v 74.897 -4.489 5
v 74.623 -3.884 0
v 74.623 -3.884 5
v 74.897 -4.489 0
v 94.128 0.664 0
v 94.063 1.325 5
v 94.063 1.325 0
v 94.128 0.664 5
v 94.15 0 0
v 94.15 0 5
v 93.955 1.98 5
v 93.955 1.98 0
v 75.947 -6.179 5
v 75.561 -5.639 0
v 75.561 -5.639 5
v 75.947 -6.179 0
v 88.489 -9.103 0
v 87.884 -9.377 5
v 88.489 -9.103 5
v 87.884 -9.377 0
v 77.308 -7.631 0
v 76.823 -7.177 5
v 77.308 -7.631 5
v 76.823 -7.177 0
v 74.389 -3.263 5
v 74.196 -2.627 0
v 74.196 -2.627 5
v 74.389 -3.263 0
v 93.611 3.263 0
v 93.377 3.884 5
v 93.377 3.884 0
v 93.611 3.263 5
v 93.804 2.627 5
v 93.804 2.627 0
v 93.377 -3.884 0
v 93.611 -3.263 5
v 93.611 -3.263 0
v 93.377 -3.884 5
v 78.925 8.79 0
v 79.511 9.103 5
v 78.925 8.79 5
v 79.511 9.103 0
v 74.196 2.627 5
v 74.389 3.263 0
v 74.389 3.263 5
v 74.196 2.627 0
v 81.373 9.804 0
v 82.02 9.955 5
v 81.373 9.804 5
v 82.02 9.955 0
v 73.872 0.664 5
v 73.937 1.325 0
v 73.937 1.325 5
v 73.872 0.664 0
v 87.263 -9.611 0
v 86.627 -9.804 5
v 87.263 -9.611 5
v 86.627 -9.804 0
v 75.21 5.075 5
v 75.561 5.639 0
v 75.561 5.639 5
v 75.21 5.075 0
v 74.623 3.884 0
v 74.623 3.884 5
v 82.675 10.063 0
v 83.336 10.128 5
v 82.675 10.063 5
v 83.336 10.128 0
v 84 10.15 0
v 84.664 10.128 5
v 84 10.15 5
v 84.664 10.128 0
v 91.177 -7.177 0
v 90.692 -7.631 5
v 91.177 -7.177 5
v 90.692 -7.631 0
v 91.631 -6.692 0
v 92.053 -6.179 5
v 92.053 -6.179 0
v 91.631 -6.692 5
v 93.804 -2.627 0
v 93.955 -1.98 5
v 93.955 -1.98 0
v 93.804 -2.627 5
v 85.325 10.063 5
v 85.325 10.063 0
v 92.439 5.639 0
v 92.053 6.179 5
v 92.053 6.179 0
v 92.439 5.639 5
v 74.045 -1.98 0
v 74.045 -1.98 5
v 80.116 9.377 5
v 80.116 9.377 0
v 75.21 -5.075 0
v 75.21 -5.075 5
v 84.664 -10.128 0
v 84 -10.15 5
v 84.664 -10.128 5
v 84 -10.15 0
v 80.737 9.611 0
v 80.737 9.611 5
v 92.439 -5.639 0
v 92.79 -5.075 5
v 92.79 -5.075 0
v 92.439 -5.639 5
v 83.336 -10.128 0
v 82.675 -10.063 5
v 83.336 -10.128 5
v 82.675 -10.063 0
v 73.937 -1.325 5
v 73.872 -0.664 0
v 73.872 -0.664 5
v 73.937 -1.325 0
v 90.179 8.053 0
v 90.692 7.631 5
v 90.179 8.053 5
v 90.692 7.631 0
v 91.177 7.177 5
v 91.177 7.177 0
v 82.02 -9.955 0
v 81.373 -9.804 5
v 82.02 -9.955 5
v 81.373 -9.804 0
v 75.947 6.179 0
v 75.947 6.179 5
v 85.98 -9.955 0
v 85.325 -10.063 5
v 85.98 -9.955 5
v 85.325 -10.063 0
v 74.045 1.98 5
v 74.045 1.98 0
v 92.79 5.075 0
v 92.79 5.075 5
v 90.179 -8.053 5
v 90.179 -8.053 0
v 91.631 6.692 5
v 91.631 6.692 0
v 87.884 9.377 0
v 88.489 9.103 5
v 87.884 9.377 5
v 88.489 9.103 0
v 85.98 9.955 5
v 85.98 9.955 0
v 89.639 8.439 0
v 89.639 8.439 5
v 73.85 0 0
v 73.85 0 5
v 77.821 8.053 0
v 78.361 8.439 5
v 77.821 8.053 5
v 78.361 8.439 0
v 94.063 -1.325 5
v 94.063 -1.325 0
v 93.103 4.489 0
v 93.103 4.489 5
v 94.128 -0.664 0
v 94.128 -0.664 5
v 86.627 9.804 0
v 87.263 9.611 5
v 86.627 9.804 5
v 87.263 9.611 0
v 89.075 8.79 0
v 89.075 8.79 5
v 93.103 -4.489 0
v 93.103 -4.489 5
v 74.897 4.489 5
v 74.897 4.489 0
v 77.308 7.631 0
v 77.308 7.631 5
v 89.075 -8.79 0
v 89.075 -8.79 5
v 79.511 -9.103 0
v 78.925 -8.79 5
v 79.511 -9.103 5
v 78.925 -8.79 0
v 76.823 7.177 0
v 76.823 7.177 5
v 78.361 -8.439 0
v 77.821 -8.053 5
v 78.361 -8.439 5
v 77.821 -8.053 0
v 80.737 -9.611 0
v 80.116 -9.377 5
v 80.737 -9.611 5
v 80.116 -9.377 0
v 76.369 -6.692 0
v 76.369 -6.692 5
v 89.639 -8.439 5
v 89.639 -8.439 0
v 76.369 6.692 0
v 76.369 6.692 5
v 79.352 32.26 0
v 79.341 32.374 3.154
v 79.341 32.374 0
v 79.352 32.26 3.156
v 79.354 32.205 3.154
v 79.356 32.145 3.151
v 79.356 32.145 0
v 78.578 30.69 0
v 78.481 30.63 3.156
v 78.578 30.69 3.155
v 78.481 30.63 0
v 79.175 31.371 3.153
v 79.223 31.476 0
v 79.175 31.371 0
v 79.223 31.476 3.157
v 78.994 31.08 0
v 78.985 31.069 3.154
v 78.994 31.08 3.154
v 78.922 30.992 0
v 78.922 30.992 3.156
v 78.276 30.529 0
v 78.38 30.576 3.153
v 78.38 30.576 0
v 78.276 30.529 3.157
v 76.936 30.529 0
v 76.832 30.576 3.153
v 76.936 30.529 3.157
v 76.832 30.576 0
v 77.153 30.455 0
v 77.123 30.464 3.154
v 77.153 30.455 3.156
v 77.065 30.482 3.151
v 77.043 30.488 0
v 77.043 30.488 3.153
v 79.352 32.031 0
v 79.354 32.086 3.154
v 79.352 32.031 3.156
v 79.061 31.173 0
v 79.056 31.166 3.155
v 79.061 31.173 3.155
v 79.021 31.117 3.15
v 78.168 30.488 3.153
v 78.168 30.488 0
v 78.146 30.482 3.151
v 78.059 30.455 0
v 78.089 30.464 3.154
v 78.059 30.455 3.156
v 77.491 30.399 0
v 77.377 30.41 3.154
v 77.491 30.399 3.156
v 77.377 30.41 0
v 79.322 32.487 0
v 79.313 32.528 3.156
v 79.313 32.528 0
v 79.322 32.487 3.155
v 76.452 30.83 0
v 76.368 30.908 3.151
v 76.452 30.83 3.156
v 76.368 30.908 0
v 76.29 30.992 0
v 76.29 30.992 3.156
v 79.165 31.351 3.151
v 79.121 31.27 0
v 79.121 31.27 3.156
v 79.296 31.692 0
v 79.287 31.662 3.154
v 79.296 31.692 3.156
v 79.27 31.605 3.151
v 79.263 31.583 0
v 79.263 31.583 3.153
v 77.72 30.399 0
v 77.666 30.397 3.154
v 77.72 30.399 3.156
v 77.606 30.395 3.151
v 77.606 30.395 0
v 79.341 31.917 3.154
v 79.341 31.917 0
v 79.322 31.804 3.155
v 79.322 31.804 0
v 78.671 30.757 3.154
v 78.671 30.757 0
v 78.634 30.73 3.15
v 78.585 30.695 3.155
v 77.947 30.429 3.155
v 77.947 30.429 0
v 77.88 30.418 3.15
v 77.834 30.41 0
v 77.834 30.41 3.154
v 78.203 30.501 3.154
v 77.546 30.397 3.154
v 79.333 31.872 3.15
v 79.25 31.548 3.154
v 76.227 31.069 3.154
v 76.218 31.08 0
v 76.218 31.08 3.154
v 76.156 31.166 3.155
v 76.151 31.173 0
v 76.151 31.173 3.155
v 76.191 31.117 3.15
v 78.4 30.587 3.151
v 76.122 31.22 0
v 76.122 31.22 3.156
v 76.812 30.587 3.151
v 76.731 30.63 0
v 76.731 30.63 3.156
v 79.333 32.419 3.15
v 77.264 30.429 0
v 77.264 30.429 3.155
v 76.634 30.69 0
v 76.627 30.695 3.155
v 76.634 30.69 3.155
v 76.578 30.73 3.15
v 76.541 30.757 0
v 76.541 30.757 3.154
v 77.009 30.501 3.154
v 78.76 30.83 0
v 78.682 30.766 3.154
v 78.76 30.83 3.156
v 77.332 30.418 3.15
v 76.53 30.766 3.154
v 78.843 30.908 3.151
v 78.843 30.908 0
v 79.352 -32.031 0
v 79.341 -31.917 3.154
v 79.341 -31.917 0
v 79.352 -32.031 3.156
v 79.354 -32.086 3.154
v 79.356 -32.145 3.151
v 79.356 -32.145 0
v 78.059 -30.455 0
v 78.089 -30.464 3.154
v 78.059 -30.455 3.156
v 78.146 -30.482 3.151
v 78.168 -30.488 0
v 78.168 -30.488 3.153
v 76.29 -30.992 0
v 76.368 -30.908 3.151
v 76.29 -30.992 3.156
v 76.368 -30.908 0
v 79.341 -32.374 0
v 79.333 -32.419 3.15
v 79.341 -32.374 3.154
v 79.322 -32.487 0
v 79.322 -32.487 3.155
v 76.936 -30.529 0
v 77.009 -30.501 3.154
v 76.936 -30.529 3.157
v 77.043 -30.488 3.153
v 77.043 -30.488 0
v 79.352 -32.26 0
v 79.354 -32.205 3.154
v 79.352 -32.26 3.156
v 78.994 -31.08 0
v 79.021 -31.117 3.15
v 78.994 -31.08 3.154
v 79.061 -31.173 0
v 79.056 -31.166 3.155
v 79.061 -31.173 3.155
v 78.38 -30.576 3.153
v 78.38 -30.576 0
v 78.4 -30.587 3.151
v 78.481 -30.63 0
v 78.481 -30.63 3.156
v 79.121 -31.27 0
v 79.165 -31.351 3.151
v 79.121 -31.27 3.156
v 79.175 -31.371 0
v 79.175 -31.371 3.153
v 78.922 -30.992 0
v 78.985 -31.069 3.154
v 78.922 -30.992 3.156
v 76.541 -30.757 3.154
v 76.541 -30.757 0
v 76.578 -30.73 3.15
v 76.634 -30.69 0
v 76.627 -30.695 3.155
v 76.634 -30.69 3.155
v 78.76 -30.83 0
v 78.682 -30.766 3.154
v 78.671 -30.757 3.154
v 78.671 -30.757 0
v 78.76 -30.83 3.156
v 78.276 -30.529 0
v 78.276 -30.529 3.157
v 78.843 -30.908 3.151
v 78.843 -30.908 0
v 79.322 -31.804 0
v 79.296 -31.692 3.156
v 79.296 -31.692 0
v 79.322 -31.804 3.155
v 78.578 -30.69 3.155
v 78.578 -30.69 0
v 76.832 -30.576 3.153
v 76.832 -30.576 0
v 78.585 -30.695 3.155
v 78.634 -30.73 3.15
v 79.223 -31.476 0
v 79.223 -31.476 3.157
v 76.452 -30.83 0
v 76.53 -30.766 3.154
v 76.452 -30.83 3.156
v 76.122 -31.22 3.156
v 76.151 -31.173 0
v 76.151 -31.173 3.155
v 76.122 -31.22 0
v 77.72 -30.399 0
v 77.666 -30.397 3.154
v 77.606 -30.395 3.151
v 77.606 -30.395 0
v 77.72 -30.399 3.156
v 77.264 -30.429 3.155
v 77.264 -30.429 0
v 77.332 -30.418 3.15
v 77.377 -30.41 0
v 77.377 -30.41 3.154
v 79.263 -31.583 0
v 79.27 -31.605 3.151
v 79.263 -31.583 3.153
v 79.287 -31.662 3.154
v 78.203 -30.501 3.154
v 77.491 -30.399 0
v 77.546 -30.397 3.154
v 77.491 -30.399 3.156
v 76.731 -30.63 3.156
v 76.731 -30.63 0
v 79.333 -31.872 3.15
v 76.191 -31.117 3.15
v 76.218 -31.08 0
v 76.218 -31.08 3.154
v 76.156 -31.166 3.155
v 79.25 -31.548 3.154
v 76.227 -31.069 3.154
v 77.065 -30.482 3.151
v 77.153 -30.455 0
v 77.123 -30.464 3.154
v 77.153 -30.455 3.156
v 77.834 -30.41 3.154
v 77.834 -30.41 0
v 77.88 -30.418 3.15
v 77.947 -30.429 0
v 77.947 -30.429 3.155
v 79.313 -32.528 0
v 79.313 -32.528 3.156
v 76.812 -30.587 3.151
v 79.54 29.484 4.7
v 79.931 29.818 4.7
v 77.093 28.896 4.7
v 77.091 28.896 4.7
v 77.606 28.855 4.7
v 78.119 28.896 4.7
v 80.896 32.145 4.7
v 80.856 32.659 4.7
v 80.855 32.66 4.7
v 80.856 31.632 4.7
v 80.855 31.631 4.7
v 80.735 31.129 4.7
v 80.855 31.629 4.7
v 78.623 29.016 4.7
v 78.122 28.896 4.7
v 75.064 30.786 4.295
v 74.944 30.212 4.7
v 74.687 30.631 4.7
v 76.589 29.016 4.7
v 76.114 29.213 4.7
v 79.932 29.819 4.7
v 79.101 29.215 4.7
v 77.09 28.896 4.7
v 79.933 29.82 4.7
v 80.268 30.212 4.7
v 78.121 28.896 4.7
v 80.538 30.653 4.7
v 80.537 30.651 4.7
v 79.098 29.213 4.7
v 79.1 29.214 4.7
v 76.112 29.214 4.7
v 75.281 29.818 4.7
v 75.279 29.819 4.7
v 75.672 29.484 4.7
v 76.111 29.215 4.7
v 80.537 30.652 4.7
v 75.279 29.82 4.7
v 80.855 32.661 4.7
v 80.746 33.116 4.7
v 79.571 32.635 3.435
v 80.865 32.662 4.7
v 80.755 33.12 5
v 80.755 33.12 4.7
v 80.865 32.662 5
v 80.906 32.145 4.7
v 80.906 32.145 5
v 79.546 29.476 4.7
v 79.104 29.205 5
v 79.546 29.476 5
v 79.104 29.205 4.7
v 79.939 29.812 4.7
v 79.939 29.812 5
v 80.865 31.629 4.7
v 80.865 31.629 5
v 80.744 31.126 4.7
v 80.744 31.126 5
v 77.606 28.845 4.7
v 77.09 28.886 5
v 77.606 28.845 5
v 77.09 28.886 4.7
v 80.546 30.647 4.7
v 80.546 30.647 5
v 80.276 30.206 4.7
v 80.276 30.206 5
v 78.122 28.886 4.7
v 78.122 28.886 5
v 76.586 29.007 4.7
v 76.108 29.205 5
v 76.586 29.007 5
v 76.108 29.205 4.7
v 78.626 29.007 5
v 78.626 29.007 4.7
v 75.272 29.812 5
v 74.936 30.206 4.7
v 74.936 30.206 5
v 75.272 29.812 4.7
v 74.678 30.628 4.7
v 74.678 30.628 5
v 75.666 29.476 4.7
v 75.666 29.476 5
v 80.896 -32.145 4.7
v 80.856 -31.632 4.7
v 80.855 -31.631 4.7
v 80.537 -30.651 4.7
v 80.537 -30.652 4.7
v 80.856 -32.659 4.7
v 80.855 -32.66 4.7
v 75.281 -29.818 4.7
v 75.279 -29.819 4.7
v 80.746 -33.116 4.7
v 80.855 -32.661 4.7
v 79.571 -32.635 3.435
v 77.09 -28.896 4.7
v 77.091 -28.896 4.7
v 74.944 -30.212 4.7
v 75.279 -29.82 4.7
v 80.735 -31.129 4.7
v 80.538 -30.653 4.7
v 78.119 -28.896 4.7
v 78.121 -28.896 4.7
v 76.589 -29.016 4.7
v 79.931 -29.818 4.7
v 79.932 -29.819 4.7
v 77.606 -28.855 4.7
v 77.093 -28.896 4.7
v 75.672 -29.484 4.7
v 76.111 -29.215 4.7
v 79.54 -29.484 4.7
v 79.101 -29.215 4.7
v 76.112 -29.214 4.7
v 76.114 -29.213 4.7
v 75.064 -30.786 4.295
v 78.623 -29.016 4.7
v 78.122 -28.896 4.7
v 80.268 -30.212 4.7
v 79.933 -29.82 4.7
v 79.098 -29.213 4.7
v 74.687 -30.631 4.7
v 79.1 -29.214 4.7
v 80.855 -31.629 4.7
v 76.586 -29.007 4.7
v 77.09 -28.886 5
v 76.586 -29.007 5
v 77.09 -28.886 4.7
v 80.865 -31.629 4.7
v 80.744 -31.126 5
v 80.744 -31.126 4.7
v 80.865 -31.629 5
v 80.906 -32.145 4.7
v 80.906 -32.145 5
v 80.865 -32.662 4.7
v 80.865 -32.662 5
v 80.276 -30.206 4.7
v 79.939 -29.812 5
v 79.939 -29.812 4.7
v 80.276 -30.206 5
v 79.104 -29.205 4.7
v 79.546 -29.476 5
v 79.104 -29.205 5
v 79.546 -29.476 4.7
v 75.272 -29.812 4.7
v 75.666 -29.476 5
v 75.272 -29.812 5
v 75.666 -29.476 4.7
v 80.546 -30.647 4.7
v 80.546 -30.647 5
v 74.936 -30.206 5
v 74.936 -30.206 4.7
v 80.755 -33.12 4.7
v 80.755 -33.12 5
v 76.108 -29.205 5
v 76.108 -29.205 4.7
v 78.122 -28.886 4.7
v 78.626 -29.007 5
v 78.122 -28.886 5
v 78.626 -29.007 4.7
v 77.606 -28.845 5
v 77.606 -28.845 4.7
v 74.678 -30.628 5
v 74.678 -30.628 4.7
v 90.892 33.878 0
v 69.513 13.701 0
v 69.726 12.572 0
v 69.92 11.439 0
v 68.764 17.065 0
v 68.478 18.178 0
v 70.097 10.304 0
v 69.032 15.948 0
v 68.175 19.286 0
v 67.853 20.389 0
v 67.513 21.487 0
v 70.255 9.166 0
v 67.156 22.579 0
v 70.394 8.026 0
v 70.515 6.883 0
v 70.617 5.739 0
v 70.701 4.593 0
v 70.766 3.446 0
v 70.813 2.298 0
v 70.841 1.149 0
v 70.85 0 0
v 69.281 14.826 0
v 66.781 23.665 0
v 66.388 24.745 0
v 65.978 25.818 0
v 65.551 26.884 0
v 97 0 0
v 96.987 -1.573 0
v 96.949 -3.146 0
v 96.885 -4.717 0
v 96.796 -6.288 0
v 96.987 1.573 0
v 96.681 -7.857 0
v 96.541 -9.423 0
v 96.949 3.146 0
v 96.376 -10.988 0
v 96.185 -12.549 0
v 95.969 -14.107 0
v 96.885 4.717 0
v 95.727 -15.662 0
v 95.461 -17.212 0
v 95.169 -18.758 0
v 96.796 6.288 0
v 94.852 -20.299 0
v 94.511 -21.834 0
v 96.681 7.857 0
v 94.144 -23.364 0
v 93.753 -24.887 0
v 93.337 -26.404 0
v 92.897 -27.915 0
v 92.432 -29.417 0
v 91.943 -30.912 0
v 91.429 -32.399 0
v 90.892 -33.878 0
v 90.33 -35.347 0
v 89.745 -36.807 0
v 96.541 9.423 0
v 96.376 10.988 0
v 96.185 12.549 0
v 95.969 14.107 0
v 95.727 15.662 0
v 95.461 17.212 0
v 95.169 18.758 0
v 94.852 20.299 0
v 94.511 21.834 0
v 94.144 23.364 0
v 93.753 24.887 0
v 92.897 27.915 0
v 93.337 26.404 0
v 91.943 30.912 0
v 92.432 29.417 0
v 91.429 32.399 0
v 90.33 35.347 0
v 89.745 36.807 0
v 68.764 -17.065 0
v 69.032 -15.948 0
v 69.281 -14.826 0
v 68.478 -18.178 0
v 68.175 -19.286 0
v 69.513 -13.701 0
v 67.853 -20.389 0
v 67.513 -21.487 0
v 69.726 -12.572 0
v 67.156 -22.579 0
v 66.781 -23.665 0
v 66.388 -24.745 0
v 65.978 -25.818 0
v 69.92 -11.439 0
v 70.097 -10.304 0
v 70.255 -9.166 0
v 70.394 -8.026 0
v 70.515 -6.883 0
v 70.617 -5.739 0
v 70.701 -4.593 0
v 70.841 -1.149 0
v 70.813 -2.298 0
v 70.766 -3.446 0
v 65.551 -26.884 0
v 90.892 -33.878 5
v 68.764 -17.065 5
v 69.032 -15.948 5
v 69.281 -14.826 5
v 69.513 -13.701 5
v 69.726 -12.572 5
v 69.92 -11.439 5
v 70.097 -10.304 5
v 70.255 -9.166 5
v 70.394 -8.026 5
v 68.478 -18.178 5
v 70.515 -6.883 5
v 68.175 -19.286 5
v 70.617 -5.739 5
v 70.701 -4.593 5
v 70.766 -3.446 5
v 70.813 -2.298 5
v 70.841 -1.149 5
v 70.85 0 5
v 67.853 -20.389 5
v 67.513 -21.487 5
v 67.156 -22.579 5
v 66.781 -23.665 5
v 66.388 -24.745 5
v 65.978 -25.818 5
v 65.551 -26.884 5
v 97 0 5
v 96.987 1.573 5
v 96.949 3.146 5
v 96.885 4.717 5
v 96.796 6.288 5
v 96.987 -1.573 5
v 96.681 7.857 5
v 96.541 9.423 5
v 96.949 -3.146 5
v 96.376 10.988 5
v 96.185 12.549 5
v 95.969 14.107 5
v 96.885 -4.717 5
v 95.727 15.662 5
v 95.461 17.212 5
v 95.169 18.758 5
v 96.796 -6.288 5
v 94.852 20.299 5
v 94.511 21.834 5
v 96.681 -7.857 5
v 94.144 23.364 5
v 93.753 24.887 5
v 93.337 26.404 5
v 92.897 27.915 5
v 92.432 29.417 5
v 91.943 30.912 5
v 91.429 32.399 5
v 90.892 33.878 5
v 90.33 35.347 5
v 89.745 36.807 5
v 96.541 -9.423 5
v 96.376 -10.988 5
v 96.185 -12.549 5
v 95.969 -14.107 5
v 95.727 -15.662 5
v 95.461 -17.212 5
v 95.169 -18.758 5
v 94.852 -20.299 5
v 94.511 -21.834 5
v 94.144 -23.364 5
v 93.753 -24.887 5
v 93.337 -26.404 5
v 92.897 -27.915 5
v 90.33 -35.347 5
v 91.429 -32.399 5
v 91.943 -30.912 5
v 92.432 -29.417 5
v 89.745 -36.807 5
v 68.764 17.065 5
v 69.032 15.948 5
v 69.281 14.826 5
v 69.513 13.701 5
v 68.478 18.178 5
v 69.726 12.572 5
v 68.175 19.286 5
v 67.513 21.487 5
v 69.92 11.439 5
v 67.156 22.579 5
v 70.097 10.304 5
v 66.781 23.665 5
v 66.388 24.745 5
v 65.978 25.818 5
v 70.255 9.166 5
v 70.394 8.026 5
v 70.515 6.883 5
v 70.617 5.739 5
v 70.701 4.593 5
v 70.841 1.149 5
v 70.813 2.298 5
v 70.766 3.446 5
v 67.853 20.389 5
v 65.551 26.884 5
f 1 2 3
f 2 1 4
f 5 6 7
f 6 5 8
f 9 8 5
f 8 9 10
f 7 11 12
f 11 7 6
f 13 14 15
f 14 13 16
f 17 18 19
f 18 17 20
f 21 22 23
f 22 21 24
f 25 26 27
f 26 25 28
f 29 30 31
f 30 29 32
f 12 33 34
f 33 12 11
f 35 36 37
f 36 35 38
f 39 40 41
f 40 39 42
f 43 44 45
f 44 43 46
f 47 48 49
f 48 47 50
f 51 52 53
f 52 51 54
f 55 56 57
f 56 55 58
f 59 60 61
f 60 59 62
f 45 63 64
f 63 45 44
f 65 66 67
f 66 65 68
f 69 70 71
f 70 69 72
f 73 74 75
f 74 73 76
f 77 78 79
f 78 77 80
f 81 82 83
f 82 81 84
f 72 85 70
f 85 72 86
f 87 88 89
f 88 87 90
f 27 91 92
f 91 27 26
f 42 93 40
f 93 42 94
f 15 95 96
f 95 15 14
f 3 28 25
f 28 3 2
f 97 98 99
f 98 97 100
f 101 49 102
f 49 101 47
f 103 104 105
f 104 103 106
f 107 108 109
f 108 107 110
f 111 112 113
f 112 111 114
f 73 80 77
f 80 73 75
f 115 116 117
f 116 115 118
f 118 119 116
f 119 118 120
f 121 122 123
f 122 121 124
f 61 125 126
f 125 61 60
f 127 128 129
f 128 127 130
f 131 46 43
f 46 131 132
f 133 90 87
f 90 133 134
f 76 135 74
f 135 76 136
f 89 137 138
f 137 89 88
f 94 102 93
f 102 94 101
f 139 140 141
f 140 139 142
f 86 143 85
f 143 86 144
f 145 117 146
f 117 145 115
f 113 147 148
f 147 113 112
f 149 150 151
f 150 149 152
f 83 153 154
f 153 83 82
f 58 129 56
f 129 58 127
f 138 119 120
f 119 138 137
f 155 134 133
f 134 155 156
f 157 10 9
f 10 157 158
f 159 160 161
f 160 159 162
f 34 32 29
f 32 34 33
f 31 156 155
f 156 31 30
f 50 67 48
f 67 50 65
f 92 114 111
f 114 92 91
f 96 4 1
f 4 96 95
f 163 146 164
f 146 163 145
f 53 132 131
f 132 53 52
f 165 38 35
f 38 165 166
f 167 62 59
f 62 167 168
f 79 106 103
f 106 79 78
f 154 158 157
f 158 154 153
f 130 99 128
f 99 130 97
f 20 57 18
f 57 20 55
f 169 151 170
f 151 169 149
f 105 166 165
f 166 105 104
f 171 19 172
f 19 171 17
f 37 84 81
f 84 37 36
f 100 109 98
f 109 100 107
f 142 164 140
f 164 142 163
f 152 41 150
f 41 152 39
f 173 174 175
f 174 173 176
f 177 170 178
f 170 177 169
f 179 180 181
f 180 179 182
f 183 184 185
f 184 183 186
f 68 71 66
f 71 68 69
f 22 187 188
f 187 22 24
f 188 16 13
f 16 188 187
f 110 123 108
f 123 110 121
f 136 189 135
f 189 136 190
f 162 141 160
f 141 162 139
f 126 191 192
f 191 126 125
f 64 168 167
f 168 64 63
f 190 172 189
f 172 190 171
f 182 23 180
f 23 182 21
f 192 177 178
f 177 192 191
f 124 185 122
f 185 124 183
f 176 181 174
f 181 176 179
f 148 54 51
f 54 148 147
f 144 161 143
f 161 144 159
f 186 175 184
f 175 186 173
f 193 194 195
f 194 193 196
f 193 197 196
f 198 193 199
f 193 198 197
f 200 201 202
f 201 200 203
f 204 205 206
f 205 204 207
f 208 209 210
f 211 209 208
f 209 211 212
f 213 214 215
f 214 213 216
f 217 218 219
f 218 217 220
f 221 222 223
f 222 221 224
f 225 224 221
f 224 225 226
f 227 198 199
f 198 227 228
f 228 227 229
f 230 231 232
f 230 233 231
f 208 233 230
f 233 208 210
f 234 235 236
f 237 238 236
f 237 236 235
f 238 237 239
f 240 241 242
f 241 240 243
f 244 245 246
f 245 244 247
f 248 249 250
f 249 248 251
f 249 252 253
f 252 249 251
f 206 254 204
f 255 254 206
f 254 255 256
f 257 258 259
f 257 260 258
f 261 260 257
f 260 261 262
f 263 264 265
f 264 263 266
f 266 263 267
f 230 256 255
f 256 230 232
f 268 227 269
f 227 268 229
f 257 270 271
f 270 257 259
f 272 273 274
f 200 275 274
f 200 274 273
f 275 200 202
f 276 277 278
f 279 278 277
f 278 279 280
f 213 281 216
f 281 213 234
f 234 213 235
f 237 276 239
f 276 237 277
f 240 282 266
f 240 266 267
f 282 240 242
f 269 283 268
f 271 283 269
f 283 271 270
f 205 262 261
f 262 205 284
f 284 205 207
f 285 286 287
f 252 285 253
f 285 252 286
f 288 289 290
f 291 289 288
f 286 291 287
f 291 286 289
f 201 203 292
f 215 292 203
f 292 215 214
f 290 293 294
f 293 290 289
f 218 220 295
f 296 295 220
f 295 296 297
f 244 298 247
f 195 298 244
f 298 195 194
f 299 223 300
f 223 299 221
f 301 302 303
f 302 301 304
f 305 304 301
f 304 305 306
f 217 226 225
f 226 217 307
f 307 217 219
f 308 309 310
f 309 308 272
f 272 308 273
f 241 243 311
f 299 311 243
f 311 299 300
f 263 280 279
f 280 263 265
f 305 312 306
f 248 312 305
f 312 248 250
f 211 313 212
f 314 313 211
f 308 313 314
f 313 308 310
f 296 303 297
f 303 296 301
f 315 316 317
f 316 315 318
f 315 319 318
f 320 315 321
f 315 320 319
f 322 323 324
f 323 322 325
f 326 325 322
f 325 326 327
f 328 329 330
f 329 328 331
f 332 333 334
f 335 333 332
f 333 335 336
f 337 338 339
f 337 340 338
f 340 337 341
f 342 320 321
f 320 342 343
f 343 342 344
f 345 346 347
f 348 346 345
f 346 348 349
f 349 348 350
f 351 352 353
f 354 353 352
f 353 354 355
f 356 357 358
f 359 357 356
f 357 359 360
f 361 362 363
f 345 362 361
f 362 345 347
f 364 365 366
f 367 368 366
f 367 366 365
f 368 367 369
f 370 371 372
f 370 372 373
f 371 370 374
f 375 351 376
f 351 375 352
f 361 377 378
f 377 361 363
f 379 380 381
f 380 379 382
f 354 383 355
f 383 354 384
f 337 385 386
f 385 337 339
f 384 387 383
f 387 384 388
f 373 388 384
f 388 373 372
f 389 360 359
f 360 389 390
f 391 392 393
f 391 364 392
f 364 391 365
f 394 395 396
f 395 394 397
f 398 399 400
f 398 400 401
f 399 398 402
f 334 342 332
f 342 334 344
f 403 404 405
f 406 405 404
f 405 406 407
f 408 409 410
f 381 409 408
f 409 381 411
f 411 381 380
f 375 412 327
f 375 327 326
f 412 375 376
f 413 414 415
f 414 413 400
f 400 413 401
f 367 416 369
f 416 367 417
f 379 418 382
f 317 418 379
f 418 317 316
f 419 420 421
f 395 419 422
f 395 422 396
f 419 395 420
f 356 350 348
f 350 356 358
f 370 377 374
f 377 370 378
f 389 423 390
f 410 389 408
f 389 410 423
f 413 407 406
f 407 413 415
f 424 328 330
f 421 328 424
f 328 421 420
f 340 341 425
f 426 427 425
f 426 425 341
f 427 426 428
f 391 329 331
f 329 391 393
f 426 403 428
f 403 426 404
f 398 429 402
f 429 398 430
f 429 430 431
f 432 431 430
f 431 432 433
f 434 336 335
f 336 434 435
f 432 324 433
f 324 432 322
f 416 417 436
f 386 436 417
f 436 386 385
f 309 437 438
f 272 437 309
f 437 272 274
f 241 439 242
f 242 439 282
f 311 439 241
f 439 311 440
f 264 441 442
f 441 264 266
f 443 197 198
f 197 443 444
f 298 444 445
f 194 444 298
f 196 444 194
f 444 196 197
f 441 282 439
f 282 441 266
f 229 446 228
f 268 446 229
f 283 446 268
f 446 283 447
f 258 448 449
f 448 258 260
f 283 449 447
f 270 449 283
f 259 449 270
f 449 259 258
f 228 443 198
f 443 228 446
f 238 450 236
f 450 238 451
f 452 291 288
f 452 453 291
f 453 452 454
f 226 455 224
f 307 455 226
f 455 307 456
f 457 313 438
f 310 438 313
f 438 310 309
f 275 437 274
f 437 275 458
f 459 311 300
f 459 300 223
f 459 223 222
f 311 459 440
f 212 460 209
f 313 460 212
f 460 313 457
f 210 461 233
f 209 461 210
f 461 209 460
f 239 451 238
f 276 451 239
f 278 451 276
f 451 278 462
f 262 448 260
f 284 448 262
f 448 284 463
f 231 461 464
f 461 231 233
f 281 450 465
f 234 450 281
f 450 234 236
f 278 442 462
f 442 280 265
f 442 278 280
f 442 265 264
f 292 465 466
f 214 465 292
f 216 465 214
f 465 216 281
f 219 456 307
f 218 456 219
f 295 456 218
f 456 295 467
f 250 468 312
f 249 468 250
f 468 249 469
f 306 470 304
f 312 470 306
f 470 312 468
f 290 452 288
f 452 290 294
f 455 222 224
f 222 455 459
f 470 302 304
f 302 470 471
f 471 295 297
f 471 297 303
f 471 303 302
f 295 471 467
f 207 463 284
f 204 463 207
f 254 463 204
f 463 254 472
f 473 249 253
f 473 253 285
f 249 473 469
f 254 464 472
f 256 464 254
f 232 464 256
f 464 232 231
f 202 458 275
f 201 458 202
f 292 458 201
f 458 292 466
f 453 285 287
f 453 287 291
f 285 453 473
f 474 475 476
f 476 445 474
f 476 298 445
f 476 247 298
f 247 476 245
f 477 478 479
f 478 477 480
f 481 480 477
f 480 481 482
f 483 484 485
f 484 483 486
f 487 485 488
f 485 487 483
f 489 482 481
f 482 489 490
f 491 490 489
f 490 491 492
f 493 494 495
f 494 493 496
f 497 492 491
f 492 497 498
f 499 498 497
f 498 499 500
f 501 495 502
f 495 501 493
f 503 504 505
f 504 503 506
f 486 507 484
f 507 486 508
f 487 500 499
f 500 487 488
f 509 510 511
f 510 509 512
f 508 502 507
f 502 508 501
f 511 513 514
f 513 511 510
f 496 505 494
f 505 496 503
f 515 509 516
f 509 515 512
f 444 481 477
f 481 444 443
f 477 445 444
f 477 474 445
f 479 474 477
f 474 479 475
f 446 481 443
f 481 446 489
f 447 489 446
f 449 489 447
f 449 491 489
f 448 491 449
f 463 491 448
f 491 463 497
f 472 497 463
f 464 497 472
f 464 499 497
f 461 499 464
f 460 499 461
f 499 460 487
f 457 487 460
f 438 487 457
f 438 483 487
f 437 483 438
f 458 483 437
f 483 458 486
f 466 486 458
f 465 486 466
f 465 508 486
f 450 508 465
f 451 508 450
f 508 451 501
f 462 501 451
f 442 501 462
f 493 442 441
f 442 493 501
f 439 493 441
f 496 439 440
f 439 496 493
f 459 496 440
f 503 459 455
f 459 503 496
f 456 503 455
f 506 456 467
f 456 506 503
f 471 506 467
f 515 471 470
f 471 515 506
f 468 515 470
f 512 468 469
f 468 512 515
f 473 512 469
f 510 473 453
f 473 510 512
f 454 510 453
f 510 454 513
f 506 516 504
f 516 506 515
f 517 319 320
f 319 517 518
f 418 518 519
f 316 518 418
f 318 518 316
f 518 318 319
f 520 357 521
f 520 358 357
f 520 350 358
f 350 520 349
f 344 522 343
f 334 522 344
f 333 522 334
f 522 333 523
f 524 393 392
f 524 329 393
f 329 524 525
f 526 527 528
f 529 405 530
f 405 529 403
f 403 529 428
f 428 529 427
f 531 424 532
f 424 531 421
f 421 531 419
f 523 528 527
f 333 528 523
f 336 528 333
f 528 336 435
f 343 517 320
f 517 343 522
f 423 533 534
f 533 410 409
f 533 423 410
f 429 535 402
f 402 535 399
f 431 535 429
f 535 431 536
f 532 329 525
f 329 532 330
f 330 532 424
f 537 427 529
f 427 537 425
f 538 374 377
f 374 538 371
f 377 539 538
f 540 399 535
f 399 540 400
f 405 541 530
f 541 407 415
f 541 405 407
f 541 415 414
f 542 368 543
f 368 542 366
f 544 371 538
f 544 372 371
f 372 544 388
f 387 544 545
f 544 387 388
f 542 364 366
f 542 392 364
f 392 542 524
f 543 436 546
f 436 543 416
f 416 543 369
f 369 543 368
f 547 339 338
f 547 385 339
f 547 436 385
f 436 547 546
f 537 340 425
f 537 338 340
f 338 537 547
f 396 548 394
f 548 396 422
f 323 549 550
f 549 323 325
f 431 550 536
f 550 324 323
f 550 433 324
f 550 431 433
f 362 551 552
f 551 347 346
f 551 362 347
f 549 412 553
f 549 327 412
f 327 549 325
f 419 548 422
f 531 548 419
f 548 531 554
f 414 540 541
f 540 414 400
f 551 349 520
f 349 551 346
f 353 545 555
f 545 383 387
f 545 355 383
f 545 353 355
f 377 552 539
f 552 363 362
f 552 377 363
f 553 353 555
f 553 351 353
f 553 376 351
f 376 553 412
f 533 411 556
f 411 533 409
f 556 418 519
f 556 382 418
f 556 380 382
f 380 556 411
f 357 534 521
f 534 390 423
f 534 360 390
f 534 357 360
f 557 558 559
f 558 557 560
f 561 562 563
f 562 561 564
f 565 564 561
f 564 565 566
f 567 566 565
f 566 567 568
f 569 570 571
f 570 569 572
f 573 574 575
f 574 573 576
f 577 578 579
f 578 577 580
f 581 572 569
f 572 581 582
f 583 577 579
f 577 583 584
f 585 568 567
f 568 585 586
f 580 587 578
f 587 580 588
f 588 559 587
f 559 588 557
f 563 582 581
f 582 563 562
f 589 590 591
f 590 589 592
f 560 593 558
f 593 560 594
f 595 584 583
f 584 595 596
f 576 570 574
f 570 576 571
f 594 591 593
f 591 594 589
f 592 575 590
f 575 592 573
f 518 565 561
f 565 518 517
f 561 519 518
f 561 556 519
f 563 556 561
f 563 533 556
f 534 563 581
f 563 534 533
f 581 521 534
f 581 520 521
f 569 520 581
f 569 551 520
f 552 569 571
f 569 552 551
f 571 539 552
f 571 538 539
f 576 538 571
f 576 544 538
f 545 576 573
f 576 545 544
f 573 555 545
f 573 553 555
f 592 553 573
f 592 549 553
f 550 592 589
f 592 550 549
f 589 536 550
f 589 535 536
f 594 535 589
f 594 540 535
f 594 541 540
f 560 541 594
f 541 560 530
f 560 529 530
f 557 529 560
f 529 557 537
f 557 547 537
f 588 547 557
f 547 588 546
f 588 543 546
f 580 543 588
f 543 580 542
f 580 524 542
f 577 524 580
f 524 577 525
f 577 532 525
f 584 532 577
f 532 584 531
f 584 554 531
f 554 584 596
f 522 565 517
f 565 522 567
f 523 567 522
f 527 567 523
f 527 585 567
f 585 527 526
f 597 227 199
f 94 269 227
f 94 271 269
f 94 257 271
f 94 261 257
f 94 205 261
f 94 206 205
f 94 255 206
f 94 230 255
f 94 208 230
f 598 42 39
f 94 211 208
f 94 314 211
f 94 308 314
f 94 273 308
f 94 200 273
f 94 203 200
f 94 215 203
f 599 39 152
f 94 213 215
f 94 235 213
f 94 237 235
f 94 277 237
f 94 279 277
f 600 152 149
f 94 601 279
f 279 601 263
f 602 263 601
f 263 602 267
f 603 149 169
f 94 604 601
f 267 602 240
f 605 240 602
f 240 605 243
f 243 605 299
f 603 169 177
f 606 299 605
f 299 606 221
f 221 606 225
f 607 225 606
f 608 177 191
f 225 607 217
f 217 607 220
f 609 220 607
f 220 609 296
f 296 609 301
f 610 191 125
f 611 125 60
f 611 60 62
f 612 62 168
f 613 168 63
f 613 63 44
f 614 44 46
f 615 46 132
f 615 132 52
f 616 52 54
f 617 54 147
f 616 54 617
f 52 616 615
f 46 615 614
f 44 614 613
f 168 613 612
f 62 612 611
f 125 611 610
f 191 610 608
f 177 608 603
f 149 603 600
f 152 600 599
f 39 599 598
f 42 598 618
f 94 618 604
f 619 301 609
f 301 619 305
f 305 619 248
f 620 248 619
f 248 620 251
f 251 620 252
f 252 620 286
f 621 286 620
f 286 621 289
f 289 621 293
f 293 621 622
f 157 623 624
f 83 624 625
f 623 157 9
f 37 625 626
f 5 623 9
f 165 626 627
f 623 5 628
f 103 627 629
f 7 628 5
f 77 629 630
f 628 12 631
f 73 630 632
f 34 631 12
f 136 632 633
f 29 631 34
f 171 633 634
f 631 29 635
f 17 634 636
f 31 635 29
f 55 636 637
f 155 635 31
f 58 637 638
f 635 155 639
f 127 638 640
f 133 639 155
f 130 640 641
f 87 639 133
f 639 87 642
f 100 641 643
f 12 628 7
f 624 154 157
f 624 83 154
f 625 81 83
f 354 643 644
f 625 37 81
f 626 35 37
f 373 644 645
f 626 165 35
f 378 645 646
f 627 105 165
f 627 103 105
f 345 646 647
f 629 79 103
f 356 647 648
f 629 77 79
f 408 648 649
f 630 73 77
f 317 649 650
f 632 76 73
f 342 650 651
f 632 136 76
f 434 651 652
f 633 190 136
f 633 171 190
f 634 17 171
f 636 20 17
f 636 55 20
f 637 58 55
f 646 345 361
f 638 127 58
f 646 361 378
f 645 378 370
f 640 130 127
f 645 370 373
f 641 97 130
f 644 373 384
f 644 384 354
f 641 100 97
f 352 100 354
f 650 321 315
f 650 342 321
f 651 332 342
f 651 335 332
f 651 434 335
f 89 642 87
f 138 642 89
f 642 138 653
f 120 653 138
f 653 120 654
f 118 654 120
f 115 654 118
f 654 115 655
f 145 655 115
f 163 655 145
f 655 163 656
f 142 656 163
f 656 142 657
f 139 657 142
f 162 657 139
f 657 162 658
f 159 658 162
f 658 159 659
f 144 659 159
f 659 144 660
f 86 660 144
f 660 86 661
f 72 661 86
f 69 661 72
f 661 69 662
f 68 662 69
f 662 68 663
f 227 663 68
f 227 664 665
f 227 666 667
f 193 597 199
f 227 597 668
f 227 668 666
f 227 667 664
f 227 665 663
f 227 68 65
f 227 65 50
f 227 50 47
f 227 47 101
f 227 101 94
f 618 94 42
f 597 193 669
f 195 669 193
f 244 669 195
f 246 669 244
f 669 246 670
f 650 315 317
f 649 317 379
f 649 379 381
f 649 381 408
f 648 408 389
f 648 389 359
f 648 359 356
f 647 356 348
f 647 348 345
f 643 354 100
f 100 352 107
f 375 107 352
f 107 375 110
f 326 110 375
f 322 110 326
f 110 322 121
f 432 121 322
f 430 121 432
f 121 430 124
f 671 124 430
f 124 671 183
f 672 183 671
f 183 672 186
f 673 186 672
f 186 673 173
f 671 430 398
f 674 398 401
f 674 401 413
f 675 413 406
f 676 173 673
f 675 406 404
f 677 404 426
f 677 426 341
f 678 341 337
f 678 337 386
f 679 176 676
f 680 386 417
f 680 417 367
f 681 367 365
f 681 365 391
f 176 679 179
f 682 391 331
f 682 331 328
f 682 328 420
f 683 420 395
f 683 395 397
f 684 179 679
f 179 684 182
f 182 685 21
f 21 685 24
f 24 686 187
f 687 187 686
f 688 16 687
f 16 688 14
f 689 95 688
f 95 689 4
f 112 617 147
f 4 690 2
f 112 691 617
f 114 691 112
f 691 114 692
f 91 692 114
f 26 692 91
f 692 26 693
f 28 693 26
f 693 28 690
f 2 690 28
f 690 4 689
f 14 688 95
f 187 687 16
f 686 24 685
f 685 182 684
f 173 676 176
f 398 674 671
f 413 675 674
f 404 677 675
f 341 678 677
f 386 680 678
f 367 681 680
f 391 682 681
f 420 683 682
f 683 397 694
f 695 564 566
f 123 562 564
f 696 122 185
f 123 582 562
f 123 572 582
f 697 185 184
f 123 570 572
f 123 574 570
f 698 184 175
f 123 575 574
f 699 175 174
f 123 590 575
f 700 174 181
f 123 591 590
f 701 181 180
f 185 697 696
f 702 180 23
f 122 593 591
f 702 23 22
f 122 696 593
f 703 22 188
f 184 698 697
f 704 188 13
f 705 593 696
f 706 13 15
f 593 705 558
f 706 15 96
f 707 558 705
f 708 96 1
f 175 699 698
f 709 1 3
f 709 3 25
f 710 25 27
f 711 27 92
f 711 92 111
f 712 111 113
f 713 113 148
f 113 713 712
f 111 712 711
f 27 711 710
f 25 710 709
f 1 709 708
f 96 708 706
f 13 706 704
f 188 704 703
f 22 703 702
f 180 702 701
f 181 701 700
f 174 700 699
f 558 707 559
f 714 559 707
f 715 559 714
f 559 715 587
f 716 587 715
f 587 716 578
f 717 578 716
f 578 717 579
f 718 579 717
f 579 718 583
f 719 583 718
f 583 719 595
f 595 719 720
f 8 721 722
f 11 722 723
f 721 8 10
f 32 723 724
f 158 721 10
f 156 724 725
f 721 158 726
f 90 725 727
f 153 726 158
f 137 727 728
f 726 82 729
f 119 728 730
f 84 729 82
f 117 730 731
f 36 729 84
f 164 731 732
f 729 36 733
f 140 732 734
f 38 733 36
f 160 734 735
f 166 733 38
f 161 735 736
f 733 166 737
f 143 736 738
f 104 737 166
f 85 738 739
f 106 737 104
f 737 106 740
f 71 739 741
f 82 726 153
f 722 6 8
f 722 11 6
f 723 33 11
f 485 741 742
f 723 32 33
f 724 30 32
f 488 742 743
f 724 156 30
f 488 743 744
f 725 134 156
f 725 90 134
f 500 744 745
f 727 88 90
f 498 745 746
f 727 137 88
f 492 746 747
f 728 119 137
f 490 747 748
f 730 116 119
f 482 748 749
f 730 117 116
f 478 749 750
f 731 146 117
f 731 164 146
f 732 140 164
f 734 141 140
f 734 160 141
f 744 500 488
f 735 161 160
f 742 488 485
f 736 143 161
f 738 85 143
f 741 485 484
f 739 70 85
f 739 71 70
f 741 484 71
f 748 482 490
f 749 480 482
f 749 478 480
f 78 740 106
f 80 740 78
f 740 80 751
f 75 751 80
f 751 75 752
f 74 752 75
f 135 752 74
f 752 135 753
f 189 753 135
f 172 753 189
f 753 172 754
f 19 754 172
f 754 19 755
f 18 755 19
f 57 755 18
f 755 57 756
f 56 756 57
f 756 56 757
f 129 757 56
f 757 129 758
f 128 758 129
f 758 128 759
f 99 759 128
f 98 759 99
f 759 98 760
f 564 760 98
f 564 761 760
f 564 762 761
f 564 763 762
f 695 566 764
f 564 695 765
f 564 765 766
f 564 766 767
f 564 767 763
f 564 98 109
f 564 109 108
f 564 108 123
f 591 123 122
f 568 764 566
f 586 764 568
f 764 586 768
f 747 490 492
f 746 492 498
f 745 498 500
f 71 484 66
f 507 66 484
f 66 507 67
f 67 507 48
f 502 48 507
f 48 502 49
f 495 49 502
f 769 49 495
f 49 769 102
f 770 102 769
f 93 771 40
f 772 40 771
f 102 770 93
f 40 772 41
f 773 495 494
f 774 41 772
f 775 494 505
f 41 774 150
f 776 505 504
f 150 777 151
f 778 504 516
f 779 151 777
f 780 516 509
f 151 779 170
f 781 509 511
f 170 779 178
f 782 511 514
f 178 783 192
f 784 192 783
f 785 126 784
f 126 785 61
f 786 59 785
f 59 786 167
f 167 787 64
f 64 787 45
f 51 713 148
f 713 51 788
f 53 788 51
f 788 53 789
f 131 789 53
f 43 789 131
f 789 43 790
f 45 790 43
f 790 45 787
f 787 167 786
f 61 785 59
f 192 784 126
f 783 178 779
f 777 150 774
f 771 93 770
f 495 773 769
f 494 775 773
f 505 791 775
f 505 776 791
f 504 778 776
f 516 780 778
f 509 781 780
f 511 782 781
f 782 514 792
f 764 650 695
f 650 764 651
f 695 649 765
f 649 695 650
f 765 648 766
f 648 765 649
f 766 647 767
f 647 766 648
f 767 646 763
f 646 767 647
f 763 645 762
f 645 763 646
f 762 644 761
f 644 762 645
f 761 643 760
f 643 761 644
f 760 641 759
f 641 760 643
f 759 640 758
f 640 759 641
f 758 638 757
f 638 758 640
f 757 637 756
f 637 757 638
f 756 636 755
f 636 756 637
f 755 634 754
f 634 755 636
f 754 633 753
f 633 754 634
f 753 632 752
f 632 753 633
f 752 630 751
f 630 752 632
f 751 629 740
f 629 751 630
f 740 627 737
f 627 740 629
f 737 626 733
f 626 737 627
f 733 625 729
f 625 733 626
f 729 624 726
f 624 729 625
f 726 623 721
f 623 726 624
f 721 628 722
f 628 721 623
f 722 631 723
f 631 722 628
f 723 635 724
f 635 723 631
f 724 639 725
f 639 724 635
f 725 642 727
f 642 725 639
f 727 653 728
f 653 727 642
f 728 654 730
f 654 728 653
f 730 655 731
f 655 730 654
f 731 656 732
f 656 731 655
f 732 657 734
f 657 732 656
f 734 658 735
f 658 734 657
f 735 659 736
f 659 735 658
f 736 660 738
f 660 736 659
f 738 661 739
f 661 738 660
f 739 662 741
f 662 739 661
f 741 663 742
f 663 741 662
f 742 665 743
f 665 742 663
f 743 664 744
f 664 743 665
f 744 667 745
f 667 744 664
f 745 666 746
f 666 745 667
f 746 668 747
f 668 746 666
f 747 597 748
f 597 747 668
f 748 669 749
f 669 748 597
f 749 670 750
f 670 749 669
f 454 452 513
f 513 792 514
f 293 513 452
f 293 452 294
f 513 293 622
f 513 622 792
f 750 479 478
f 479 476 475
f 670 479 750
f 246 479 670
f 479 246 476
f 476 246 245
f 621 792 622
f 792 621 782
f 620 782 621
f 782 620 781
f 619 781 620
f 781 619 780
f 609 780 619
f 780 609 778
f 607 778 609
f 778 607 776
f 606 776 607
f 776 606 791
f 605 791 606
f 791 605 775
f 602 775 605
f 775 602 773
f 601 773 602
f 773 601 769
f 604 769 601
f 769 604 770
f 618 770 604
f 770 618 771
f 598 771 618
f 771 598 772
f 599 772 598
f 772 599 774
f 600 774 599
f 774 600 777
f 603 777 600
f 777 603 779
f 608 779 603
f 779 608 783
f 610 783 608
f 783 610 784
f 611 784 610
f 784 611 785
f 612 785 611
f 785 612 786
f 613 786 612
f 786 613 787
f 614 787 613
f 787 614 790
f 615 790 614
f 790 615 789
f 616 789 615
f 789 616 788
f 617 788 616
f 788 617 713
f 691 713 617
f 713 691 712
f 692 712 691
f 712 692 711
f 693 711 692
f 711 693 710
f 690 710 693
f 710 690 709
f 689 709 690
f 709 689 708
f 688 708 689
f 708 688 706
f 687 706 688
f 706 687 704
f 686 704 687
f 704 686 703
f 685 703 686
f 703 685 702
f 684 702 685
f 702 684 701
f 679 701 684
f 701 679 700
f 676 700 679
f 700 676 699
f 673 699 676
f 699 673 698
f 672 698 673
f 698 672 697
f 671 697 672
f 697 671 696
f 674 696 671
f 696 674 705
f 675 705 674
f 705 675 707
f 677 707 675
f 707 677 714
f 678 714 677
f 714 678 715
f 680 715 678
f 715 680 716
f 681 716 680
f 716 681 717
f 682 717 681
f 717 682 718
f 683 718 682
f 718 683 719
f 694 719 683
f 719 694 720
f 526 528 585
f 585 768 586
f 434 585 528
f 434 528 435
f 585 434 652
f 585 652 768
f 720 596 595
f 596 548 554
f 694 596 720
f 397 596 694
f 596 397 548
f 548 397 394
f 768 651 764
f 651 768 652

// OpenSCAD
// file: parameters.scad
// =============================================================================
// Gen-CB — nightly 2026-10-13 (physics_scorer, honest magpylib watts)
// Wire-saver stator for the Gen-CA rotors: only 4.05 mm of copper (9 layers), so the magnet faces are 6.65 mm apart and peak Bz at the copper reaches ≈0.70 T. It needs ≈300 m of wire (≈80 m less than Gen-CA, ≈75 m less than Gen-BX) and still out-scores the Gen-BX champion; it shares every rotor part, the steel, the frame rods and the bearing bridges with Gen-CA, so the two stators swap on the same machine.
// Clocking 0 deg (magnets N facing S) + D-flat keyed bore + index notch + flip-symmetric hole map.
// Windable 2-piece bobbin; turns = physics_scorer turns_fit; copper only between flanges.
// Steel back-iron: 2× Ø194 × 4.76 mm (3/16") mild-steel discs (steel_backiron_disc.dxf); magnets sit ON the steel
// (through-pockets) -> score with --back-iron. Night 2026-10-13.
// =============================================================================
topology            = "dual_rotor";

// --- Wire / winding (physics_scorer winding-fit) -------------------------------
wire_awg            = 26;
wire_od             = 0.45;     // insulated OD mm (bare 0.405)
fill_realistic      = 0.65;     // insulated-wire area / window (DENSE layered wind with a jig; scorer cap 0.65)
turns               = 292;       // = physics_scorer turns_fit (do NOT raise)
coil_former_type    = "bobbin";
coil_core_inset     = 17.70;     // radial copper build: hub = copper boundary inset by this
wind_build_axial    = 0.0;      // nothing proud of the flanges
wind_build_radial   = 0.0;

// --- Bobbin (base + lid) ---------------------------------------------------------
coil_id_r           = 63.00;    // copper boundary sector
coil_od_r           = 102.00;
span_deg            = 26.82;    // = pitch - 2*asin((wall+0.85)/coil_id_r) -> >=1.2 mm stator web
former_web          = 4.05;     // copper height between flanges (TALL copper: steel keeps Bz up)
flange_t            = 0.80;     // >= 0.8 mm FDM wall rule (tall winds push on the flanges)
wall                = 0.80;     // flange lip beyond copper
former_bare_h       = former_web + 2 * flange_t;
coil_envelope_h     = former_bare_h + 2 * wind_build_axial;
tab_w               = 7.0;
tab_len             = 7.0;
tab_h               = former_bare_h / 2;
pin_d               = 1.9;      // 1.75 mm filament locating pin
coil_mount_r        = coil_od_r + 0.2 + 4.0;
lead_y              = 1.6;
lead_slot_w         = 0.9;
lead_groove_d       = 0.6;

// --- Gap -------------------------------------------------------------------------
run_clear           = 0.50;     // rotor face -> flange
gap_spacer_h        = run_clear + wind_build_axial;
m2m                 = coil_envelope_h + 2 * run_clear;   // rotor face to rotor face (= gap_sleeve length)

// --- Stator ----------------------------------------------------------------------
coil_stations       = 12;
bay_clear           = 0.35;     // 0.35 mm: bobbin BASES print IN PLACE inside the stator bays (print-in-place gap), then pop out
stator_thick        = former_bare_h;                        // bobbins flush both faces
stator_od           = 225.0;
shaft_clear_stator  = 14.0;     // stator is static; gap sleeve OD 12 spins inside
stator_ir           = 57.85;    // ANNULAR stator: open centre (nested one-plate pack); inner rim 4.0 mm

// --- Rotor(s) --------------------------------------------------------------------
magnet_Br           = 1.43;     // N52
magnet_d_large      = 20.0;
magnet_h_large      = 5.0;      // one O20x5 per pocket
magnet_h_small      = 5.0;      // unused: no O5 pockets in this kit
halbach_magnetisation = "none";  // NO O5 assist magnets in this kit (scan: they lower the 4-pole score)
rotor_b_same_axis   = true;     // same-index magnets share one axis: N faces S across the gap
large_pocket_d      = 20.3;
small_pocket_d      = 5.3;
pocket_h            = 5.00;     // THROUGH the carrier: magnet back face sits on the steel disc (FLUSH seat: carrier = magnet height, magnet face level with the rotor face)
large_n             = 8;
R_large             = 84.0;
small_r_list        = [];       // no O5 pockets
carrier_od          = 194.0;
ring_ir             = 70.85;    // RING rotor: PLA magnet ring r ring_ir..carrier_od/2 (steel disc = structural rotor)
hub_flange_od       = 74.0;     // separate rotor_hub flange (inside the ring, flush with the ring face)
csk_d               = 6.6;      // M3 countersunk head pocket (ISO 10642 head 6.0 nominal) on the stator face
csk_depth           = 1.55;     // = (csk_d - m3_clear) / 2: 90 deg cone; head sits 0.3 mm below the face
n_seg               = 8;        // magnet-carrier ARCS per rotor (segmented carrier)
seg_deg             = 360 / n_seg;
seg_start           = -22.5;   // arc edge angle (between pocket 0 and its clamp bolt)
seg_kerf_deg        = 0.4;      // gap between neighbouring arcs on the steel
carrier_thick       = pocket_h;
hub_h               = 12.0;     // > steel_t + insert: radial set-screw clears the steel
hub_od              = 24.0;     // slim hub so the M4 brace rods fit at R~18 inside the coil ring
hub_insert_d        = 4.0;      // M3 heat-set insert, radial, bears on the D-flat
rotor_b_offset_deg  = 0.0;      // CLOCKING: magnets directly opposite
shaft_key           = "dflat";
dflat_depth         = 0.5;      // 8 mm shaft with 0.5 mm flat (7.5 across flat)
index_notch_d       = 3.0;

// --- Steel back-iron (buyable laser-cut) -------------------------------------------
steel_t             = 4.76;      // mild steel thickness (image method ignores it; sized from steel_flux.py so the return path stays well below saturation)
steel_center_hole   = 26.0;     // slips over the rotor hub (OD 24)
steel_od            = carrier_od;   // steel disc OD = rotor carrier OD

// --- Modular MAX interface ----------------------------------------------------------
shaft_bore          = 8.35;
dflat_x             = 4.0 - dflat_depth + (shaft_bore - 8.0) / 2;
bearing_d           = 21.85;
bearing_h           = 7.2;
m3_clear            = 3.5;
bolt_r_inner        = 30.0;     // M3 steel-disc clamp bolts (inside the magnet ring)
bolt_n_inner        = 4;
bolt_inner_angles   = [0, 90, 180, 270];
bolt_r_outer        = 84.0;     // second M3 steel-disc clamp ring
bolt_outer_angles   = [22.5, 67.5, 112.5, 157.5, 202.5, 247.5, 292.5, 337.5];
flange_bolt_r       = 107.5;     // frame rods: OUTSIDE the rotor OD (rotors spin inside them)
flange_bolt_n       = 4;
flange_bolt_offset  = 45.00;    // between coil stations -> never cuts a lead groove/tab
brace_r             = 18.0;
brace_d             = 4.3;      // temporary M4 jack rods (assembly only)
brace_n             = 4;
brace_angles        = [45, 135, 225, 315];          // flip-symmetric

spacer_pad_od       = 14.0;
spacer_pad_id       = m3_clear;
endbell_od          = 225.0;
endbell_thick       = 8.0;
endbell_shaft_clear = 10.0;
collar_h            = 10.0;
standoff_od         = 9.0;
frame_standoff_h    = run_clear + carrier_thick + hub_h + collar_h + 2.0;
sleeve_od           = 12.0;
plate_max_mm        = 410;

$fn = 64;
// main file
// Gen-CB — rotor A MAGNET-CARRIER ARC (2026-10-13 segmented nested pack). Print x8 per rotor (16 total
// for A+B; A and B arcs are the same print). Each arc covers seg_deg = 360/n_seg of the R_large ring and holds 1 O20 through-pockets
// + 1 countersunk M3 clamp holes (inter-pole, R bolt_r_outer) to the steel disc. The 4.76 mm mild-steel disc is the structural
// rotor; the separate rotor_hub (D-flat) bolts to it at R bolt_r_inner. Arcs pack around/inside the other parts on ONE plate,
// and any arc can be swapped/re-printed on its own (modular magnet carrier).
// CLOCKING: arc j spans [j*seg_deg + seg_start, (j+1)*seg_deg + seg_start - kerf]; pockets at i*360/large_n + rotor_b_offset_deg (= 0).
// The arc's bolt holes sit on the same 8-fold map as the pockets, so every arc position puts pockets on the same steel angles;
// pocket 0 = the pocket over the STEEL index notch (clocked to the hub D-flat). Rotor B arcs = same print, flipped to face A.
// Print countersinks UP (stator face up); the arc lies flat (5 mm), no supports.
include <parameters.scad>;
$fn = 96;
module ring_holes_2d() {
    for (a = bolt_outer_angles) translate([bolt_r_outer*cos(a), bolt_r_outer*sin(a)]) circle(d=m3_clear);
    translate([carrier_od/2, 0]) circle(d=index_notch_d, $fn=24);
}
module hub_holes_2d() {
    for (a = bolt_inner_angles) translate([bolt_r_inner*cos(a), bolt_r_inner*sin(a)]) circle(d=m3_clear);
    for (a = brace_angles) translate([brace_r*cos(a), brace_r*sin(a)]) circle(d=brace_d);
    translate([hub_flange_od/2, 0]) circle(d=index_notch_d, $fn=24);
}
module csk(r, angles) {   // M3 countersunk (ISO 10642, 90 deg) head pocket on the STATOR face, head 0.3 mm below the face
    for (a = angles) translate([r*cos(a), r*sin(a), 0]) {
        translate([0, 0, carrier_thick - 0.3 - csk_depth - 0.2]) cylinder(d1=m3_clear - 0.4, d2=csk_d, h=csk_depth + 0.2 + 0.01, $fn=40);
        translate([0, 0, carrier_thick - 0.3]) cylinder(d=csk_d, h=0.4, $fn=40);
    }
}

off = 0;
module arc_2d() {
    a0 = seg_start + seg_kerf_deg / 2; a1 = seg_start + seg_deg - seg_kerf_deg / 2;
    polygon(concat(
        [for (k = [0 : 48]) let(t = a0 + (a1 - a0) * k / 48) [(carrier_od/2) * cos(t), (carrier_od/2) * sin(t)]],
        [for (k = [48 : -1 : 0]) let(t = a0 + (a1 - a0) * k / 48) [ring_ir * cos(t), ring_ir * sin(t)]]));
}
difference() {
    linear_extrude(carrier_thick) arc_2d();
    for (i = [0 : large_n-1]) {
        a = i * 360 / large_n + off;
        translate([R_large*cos(a), R_large*sin(a), -0.1]) cylinder(d=large_pocket_d, h=carrier_thick + 0.2);
    }
    for (a = bolt_outer_angles) translate([bolt_r_outer*cos(a), bolt_r_outer*sin(a), -0.1]) cylinder(d=m3_clear, h=carrier_thick + 0.2);
    csk(bolt_r_outer, bolt_outer_angles);
}
